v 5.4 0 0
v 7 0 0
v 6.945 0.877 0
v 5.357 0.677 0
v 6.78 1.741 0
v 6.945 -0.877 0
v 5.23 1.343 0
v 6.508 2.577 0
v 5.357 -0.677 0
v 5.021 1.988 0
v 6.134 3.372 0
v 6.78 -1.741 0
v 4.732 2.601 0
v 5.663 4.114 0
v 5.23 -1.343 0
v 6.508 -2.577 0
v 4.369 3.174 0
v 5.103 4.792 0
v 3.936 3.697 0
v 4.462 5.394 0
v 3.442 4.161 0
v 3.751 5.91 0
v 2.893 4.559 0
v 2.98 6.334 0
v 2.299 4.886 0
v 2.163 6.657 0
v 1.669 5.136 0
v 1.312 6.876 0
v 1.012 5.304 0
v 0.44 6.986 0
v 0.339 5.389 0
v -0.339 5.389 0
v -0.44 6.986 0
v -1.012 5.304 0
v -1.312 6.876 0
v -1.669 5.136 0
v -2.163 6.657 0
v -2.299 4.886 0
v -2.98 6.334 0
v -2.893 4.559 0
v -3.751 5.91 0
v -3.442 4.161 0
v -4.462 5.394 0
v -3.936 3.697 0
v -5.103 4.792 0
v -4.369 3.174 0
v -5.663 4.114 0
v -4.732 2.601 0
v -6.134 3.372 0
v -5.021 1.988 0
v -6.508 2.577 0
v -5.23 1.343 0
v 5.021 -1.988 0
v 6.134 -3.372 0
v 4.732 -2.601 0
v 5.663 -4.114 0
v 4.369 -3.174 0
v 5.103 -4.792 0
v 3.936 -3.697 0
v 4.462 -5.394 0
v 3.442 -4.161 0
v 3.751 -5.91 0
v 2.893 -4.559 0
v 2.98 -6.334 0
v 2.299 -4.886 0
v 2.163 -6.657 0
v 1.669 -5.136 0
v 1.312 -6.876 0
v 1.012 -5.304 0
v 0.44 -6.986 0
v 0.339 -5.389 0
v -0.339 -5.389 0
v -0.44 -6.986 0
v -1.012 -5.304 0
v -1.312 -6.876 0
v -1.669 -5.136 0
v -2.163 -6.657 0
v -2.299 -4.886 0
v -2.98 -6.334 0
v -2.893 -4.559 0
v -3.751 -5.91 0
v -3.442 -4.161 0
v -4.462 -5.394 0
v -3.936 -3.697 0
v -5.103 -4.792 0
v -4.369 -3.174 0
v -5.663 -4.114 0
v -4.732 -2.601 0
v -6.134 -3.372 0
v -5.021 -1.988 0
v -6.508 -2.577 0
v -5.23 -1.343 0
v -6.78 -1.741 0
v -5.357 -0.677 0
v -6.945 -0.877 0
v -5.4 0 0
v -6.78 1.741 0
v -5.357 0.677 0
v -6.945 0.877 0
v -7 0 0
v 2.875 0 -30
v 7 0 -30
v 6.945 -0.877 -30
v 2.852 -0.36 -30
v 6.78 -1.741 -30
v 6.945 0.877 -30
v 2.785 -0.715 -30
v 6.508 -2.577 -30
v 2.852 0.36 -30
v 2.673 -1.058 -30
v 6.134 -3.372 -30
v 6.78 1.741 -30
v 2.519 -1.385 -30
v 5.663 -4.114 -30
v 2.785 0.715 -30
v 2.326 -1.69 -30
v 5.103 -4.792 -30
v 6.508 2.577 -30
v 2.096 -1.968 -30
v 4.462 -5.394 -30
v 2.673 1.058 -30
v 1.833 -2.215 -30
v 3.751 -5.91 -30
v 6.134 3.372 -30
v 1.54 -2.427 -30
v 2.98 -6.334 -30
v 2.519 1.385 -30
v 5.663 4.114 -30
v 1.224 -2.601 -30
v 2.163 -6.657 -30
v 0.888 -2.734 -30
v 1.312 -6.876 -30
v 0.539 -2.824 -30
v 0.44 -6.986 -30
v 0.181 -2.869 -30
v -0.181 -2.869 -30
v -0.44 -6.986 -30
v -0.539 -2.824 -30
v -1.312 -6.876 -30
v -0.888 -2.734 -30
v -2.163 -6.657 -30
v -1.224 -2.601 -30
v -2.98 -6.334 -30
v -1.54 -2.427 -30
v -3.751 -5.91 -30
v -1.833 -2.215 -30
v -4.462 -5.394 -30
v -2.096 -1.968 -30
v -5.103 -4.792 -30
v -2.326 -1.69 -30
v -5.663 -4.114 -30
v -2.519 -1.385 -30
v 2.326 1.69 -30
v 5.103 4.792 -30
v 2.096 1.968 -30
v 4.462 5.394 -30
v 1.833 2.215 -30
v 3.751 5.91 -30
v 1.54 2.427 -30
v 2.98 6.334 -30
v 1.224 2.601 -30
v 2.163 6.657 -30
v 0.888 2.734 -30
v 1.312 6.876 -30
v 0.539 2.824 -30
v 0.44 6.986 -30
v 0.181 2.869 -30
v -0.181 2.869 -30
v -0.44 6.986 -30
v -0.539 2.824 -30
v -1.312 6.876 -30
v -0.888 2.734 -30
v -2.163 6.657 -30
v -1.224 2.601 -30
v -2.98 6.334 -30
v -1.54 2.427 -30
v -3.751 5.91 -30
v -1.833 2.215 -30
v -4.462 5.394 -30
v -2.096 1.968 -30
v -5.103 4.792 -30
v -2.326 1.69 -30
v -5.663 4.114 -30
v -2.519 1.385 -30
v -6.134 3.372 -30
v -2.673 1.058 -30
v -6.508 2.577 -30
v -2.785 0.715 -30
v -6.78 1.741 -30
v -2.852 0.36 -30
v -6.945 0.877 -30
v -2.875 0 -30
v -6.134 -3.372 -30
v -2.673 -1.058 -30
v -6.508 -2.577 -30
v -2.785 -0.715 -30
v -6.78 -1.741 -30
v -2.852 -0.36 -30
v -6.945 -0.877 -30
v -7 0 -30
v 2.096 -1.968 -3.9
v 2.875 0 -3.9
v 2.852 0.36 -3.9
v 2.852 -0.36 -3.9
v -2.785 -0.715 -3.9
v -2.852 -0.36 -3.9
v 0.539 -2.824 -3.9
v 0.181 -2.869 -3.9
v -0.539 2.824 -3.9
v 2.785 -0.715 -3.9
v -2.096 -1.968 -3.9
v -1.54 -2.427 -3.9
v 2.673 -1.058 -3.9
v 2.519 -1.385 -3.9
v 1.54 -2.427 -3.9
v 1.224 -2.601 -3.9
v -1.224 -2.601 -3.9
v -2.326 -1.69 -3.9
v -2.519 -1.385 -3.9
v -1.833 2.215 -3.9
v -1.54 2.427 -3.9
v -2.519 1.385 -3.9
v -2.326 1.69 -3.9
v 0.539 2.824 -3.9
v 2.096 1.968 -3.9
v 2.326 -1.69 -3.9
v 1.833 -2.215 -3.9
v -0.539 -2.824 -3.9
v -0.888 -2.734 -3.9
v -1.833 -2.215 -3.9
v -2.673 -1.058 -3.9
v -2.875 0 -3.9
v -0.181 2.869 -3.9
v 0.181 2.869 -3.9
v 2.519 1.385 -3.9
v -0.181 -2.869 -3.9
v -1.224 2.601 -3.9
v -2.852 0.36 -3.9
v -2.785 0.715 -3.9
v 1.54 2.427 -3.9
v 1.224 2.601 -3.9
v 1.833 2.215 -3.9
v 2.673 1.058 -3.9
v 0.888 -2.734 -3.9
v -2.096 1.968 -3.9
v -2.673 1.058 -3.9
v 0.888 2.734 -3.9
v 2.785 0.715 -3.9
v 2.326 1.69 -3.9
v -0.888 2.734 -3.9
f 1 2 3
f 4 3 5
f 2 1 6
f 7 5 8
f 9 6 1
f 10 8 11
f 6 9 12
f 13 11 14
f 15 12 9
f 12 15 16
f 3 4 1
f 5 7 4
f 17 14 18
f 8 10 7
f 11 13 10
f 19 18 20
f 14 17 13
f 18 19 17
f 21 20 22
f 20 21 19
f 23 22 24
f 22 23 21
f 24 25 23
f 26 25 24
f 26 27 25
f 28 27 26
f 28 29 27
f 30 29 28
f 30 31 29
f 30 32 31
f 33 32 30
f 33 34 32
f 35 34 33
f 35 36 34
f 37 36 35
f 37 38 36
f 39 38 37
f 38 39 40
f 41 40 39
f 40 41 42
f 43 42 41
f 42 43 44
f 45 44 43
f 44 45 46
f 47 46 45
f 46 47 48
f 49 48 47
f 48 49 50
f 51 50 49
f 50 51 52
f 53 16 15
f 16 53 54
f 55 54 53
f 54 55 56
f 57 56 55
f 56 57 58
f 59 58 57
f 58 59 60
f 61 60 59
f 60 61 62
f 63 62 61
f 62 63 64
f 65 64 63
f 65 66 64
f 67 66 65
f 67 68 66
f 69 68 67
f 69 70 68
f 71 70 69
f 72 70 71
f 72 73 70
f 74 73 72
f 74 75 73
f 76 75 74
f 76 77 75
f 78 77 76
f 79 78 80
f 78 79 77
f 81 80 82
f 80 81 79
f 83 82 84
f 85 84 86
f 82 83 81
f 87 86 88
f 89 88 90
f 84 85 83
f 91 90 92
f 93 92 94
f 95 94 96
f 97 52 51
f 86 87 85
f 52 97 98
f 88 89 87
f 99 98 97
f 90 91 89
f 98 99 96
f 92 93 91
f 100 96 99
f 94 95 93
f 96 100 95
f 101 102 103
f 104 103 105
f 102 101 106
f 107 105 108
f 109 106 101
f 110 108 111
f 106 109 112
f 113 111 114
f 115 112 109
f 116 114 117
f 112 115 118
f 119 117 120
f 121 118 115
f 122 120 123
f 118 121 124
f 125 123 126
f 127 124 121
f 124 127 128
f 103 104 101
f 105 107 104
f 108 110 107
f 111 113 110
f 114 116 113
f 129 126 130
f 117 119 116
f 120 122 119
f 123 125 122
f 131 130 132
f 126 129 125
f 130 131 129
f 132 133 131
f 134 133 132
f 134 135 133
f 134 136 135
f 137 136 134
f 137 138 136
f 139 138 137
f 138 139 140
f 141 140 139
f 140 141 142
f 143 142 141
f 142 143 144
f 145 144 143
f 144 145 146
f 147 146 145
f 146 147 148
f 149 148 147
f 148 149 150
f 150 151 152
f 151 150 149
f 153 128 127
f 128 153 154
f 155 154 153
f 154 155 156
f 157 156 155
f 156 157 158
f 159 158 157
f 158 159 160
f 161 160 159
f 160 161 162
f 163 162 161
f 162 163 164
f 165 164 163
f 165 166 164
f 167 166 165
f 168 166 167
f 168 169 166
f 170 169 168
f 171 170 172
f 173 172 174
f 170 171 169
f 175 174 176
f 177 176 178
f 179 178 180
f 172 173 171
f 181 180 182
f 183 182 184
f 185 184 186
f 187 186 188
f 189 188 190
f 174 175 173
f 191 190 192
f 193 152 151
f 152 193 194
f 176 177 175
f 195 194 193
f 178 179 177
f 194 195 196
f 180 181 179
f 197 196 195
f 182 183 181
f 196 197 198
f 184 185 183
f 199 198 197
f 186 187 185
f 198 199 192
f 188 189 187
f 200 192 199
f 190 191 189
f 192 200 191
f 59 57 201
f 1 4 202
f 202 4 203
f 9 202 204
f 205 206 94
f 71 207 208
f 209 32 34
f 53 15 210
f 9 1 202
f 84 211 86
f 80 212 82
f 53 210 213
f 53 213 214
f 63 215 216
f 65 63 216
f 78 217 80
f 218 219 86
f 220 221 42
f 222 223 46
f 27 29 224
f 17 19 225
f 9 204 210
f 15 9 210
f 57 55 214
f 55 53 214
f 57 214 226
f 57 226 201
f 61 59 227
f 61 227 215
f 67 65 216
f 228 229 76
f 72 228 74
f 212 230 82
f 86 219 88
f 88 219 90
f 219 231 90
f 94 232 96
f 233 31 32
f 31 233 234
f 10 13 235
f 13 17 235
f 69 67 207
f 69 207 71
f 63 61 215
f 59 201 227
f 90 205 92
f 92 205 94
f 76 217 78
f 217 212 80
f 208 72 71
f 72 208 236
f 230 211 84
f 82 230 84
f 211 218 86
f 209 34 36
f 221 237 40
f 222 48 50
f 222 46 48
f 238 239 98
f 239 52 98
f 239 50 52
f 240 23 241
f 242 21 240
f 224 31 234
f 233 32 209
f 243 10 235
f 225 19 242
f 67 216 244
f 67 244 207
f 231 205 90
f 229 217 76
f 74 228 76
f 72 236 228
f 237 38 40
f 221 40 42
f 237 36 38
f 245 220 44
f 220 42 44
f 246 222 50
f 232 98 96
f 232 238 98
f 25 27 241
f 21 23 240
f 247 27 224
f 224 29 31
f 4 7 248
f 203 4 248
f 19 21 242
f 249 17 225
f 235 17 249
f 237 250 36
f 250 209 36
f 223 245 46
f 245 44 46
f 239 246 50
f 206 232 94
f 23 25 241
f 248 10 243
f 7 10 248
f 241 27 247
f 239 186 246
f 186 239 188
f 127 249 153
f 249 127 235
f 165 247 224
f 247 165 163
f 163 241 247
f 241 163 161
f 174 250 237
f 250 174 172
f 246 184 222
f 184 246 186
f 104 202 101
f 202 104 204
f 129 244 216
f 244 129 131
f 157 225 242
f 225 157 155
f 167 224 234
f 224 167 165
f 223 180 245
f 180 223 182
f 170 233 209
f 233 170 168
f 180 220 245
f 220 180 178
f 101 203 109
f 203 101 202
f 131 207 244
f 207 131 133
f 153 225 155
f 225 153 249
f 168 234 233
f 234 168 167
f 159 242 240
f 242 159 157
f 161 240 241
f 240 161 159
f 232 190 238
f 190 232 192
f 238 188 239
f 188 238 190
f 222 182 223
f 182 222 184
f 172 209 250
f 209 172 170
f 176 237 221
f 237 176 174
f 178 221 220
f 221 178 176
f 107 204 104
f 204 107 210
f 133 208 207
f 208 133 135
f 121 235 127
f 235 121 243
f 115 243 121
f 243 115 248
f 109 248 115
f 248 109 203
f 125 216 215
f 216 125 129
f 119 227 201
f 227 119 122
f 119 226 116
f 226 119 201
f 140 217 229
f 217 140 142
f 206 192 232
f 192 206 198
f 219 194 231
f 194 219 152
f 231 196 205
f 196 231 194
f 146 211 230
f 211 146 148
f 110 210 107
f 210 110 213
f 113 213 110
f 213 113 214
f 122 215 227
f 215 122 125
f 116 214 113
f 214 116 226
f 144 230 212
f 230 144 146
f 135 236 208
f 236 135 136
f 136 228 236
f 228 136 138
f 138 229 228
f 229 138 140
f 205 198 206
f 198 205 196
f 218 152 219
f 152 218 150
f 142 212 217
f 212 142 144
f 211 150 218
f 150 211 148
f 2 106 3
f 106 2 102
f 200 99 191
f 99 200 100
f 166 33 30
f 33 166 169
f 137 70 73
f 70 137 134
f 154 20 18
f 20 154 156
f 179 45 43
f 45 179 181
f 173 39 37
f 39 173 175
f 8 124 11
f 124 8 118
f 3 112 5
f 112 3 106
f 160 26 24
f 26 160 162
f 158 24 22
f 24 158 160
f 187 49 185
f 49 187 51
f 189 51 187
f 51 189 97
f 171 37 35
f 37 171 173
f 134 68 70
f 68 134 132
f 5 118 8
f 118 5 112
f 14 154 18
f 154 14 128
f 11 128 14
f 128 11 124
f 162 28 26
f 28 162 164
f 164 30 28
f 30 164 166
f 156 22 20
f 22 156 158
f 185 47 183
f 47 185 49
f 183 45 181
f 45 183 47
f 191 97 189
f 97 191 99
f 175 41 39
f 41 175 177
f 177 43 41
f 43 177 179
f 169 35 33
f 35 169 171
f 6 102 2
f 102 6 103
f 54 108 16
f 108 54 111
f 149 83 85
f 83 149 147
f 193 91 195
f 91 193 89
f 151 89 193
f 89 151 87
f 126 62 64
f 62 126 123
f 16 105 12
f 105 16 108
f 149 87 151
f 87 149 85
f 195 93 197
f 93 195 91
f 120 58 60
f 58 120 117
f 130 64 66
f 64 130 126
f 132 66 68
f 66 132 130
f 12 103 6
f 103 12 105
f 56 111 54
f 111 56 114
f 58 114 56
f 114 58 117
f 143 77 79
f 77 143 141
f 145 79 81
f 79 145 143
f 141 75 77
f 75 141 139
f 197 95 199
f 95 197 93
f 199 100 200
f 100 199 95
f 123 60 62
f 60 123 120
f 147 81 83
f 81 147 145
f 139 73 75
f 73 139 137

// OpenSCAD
$fn = 50;


difference() {
	union() {
		translate(v = [0, 0, -30.0000000000]) {
			cylinder(h = 30, r = 7.0000000000);
		}
		cylinder(h = 0, r = 10.0000000000);
	}
	union() {
		translate(v = [0, 0, 0]) {
			rotate(a = [0, 0, 0]) {
				difference() {
					union() {
						#translate(v = [0, 0, -30.0000000000]) {
							cylinder(h = 30, r = 2.6000000000);
						}
						#translate(v = [0, 0, -3.9000000000]) {
							cylinder(h = 3.9000000000, r = 7.0000000000, r1 = 2.8750000000, r2 = 5.4000000000);
						}
						#translate(v = [0, 0, -30.0000000000]) {
							cylinder(h = 30, r = 2.8750000000);
						}
						#translate(v = [0, 0, -30.0000000000]) {
							cylinder(h = 30, r = 2.6000000000);
						}
					}
					union();
				}
			}
		}
	}
}
